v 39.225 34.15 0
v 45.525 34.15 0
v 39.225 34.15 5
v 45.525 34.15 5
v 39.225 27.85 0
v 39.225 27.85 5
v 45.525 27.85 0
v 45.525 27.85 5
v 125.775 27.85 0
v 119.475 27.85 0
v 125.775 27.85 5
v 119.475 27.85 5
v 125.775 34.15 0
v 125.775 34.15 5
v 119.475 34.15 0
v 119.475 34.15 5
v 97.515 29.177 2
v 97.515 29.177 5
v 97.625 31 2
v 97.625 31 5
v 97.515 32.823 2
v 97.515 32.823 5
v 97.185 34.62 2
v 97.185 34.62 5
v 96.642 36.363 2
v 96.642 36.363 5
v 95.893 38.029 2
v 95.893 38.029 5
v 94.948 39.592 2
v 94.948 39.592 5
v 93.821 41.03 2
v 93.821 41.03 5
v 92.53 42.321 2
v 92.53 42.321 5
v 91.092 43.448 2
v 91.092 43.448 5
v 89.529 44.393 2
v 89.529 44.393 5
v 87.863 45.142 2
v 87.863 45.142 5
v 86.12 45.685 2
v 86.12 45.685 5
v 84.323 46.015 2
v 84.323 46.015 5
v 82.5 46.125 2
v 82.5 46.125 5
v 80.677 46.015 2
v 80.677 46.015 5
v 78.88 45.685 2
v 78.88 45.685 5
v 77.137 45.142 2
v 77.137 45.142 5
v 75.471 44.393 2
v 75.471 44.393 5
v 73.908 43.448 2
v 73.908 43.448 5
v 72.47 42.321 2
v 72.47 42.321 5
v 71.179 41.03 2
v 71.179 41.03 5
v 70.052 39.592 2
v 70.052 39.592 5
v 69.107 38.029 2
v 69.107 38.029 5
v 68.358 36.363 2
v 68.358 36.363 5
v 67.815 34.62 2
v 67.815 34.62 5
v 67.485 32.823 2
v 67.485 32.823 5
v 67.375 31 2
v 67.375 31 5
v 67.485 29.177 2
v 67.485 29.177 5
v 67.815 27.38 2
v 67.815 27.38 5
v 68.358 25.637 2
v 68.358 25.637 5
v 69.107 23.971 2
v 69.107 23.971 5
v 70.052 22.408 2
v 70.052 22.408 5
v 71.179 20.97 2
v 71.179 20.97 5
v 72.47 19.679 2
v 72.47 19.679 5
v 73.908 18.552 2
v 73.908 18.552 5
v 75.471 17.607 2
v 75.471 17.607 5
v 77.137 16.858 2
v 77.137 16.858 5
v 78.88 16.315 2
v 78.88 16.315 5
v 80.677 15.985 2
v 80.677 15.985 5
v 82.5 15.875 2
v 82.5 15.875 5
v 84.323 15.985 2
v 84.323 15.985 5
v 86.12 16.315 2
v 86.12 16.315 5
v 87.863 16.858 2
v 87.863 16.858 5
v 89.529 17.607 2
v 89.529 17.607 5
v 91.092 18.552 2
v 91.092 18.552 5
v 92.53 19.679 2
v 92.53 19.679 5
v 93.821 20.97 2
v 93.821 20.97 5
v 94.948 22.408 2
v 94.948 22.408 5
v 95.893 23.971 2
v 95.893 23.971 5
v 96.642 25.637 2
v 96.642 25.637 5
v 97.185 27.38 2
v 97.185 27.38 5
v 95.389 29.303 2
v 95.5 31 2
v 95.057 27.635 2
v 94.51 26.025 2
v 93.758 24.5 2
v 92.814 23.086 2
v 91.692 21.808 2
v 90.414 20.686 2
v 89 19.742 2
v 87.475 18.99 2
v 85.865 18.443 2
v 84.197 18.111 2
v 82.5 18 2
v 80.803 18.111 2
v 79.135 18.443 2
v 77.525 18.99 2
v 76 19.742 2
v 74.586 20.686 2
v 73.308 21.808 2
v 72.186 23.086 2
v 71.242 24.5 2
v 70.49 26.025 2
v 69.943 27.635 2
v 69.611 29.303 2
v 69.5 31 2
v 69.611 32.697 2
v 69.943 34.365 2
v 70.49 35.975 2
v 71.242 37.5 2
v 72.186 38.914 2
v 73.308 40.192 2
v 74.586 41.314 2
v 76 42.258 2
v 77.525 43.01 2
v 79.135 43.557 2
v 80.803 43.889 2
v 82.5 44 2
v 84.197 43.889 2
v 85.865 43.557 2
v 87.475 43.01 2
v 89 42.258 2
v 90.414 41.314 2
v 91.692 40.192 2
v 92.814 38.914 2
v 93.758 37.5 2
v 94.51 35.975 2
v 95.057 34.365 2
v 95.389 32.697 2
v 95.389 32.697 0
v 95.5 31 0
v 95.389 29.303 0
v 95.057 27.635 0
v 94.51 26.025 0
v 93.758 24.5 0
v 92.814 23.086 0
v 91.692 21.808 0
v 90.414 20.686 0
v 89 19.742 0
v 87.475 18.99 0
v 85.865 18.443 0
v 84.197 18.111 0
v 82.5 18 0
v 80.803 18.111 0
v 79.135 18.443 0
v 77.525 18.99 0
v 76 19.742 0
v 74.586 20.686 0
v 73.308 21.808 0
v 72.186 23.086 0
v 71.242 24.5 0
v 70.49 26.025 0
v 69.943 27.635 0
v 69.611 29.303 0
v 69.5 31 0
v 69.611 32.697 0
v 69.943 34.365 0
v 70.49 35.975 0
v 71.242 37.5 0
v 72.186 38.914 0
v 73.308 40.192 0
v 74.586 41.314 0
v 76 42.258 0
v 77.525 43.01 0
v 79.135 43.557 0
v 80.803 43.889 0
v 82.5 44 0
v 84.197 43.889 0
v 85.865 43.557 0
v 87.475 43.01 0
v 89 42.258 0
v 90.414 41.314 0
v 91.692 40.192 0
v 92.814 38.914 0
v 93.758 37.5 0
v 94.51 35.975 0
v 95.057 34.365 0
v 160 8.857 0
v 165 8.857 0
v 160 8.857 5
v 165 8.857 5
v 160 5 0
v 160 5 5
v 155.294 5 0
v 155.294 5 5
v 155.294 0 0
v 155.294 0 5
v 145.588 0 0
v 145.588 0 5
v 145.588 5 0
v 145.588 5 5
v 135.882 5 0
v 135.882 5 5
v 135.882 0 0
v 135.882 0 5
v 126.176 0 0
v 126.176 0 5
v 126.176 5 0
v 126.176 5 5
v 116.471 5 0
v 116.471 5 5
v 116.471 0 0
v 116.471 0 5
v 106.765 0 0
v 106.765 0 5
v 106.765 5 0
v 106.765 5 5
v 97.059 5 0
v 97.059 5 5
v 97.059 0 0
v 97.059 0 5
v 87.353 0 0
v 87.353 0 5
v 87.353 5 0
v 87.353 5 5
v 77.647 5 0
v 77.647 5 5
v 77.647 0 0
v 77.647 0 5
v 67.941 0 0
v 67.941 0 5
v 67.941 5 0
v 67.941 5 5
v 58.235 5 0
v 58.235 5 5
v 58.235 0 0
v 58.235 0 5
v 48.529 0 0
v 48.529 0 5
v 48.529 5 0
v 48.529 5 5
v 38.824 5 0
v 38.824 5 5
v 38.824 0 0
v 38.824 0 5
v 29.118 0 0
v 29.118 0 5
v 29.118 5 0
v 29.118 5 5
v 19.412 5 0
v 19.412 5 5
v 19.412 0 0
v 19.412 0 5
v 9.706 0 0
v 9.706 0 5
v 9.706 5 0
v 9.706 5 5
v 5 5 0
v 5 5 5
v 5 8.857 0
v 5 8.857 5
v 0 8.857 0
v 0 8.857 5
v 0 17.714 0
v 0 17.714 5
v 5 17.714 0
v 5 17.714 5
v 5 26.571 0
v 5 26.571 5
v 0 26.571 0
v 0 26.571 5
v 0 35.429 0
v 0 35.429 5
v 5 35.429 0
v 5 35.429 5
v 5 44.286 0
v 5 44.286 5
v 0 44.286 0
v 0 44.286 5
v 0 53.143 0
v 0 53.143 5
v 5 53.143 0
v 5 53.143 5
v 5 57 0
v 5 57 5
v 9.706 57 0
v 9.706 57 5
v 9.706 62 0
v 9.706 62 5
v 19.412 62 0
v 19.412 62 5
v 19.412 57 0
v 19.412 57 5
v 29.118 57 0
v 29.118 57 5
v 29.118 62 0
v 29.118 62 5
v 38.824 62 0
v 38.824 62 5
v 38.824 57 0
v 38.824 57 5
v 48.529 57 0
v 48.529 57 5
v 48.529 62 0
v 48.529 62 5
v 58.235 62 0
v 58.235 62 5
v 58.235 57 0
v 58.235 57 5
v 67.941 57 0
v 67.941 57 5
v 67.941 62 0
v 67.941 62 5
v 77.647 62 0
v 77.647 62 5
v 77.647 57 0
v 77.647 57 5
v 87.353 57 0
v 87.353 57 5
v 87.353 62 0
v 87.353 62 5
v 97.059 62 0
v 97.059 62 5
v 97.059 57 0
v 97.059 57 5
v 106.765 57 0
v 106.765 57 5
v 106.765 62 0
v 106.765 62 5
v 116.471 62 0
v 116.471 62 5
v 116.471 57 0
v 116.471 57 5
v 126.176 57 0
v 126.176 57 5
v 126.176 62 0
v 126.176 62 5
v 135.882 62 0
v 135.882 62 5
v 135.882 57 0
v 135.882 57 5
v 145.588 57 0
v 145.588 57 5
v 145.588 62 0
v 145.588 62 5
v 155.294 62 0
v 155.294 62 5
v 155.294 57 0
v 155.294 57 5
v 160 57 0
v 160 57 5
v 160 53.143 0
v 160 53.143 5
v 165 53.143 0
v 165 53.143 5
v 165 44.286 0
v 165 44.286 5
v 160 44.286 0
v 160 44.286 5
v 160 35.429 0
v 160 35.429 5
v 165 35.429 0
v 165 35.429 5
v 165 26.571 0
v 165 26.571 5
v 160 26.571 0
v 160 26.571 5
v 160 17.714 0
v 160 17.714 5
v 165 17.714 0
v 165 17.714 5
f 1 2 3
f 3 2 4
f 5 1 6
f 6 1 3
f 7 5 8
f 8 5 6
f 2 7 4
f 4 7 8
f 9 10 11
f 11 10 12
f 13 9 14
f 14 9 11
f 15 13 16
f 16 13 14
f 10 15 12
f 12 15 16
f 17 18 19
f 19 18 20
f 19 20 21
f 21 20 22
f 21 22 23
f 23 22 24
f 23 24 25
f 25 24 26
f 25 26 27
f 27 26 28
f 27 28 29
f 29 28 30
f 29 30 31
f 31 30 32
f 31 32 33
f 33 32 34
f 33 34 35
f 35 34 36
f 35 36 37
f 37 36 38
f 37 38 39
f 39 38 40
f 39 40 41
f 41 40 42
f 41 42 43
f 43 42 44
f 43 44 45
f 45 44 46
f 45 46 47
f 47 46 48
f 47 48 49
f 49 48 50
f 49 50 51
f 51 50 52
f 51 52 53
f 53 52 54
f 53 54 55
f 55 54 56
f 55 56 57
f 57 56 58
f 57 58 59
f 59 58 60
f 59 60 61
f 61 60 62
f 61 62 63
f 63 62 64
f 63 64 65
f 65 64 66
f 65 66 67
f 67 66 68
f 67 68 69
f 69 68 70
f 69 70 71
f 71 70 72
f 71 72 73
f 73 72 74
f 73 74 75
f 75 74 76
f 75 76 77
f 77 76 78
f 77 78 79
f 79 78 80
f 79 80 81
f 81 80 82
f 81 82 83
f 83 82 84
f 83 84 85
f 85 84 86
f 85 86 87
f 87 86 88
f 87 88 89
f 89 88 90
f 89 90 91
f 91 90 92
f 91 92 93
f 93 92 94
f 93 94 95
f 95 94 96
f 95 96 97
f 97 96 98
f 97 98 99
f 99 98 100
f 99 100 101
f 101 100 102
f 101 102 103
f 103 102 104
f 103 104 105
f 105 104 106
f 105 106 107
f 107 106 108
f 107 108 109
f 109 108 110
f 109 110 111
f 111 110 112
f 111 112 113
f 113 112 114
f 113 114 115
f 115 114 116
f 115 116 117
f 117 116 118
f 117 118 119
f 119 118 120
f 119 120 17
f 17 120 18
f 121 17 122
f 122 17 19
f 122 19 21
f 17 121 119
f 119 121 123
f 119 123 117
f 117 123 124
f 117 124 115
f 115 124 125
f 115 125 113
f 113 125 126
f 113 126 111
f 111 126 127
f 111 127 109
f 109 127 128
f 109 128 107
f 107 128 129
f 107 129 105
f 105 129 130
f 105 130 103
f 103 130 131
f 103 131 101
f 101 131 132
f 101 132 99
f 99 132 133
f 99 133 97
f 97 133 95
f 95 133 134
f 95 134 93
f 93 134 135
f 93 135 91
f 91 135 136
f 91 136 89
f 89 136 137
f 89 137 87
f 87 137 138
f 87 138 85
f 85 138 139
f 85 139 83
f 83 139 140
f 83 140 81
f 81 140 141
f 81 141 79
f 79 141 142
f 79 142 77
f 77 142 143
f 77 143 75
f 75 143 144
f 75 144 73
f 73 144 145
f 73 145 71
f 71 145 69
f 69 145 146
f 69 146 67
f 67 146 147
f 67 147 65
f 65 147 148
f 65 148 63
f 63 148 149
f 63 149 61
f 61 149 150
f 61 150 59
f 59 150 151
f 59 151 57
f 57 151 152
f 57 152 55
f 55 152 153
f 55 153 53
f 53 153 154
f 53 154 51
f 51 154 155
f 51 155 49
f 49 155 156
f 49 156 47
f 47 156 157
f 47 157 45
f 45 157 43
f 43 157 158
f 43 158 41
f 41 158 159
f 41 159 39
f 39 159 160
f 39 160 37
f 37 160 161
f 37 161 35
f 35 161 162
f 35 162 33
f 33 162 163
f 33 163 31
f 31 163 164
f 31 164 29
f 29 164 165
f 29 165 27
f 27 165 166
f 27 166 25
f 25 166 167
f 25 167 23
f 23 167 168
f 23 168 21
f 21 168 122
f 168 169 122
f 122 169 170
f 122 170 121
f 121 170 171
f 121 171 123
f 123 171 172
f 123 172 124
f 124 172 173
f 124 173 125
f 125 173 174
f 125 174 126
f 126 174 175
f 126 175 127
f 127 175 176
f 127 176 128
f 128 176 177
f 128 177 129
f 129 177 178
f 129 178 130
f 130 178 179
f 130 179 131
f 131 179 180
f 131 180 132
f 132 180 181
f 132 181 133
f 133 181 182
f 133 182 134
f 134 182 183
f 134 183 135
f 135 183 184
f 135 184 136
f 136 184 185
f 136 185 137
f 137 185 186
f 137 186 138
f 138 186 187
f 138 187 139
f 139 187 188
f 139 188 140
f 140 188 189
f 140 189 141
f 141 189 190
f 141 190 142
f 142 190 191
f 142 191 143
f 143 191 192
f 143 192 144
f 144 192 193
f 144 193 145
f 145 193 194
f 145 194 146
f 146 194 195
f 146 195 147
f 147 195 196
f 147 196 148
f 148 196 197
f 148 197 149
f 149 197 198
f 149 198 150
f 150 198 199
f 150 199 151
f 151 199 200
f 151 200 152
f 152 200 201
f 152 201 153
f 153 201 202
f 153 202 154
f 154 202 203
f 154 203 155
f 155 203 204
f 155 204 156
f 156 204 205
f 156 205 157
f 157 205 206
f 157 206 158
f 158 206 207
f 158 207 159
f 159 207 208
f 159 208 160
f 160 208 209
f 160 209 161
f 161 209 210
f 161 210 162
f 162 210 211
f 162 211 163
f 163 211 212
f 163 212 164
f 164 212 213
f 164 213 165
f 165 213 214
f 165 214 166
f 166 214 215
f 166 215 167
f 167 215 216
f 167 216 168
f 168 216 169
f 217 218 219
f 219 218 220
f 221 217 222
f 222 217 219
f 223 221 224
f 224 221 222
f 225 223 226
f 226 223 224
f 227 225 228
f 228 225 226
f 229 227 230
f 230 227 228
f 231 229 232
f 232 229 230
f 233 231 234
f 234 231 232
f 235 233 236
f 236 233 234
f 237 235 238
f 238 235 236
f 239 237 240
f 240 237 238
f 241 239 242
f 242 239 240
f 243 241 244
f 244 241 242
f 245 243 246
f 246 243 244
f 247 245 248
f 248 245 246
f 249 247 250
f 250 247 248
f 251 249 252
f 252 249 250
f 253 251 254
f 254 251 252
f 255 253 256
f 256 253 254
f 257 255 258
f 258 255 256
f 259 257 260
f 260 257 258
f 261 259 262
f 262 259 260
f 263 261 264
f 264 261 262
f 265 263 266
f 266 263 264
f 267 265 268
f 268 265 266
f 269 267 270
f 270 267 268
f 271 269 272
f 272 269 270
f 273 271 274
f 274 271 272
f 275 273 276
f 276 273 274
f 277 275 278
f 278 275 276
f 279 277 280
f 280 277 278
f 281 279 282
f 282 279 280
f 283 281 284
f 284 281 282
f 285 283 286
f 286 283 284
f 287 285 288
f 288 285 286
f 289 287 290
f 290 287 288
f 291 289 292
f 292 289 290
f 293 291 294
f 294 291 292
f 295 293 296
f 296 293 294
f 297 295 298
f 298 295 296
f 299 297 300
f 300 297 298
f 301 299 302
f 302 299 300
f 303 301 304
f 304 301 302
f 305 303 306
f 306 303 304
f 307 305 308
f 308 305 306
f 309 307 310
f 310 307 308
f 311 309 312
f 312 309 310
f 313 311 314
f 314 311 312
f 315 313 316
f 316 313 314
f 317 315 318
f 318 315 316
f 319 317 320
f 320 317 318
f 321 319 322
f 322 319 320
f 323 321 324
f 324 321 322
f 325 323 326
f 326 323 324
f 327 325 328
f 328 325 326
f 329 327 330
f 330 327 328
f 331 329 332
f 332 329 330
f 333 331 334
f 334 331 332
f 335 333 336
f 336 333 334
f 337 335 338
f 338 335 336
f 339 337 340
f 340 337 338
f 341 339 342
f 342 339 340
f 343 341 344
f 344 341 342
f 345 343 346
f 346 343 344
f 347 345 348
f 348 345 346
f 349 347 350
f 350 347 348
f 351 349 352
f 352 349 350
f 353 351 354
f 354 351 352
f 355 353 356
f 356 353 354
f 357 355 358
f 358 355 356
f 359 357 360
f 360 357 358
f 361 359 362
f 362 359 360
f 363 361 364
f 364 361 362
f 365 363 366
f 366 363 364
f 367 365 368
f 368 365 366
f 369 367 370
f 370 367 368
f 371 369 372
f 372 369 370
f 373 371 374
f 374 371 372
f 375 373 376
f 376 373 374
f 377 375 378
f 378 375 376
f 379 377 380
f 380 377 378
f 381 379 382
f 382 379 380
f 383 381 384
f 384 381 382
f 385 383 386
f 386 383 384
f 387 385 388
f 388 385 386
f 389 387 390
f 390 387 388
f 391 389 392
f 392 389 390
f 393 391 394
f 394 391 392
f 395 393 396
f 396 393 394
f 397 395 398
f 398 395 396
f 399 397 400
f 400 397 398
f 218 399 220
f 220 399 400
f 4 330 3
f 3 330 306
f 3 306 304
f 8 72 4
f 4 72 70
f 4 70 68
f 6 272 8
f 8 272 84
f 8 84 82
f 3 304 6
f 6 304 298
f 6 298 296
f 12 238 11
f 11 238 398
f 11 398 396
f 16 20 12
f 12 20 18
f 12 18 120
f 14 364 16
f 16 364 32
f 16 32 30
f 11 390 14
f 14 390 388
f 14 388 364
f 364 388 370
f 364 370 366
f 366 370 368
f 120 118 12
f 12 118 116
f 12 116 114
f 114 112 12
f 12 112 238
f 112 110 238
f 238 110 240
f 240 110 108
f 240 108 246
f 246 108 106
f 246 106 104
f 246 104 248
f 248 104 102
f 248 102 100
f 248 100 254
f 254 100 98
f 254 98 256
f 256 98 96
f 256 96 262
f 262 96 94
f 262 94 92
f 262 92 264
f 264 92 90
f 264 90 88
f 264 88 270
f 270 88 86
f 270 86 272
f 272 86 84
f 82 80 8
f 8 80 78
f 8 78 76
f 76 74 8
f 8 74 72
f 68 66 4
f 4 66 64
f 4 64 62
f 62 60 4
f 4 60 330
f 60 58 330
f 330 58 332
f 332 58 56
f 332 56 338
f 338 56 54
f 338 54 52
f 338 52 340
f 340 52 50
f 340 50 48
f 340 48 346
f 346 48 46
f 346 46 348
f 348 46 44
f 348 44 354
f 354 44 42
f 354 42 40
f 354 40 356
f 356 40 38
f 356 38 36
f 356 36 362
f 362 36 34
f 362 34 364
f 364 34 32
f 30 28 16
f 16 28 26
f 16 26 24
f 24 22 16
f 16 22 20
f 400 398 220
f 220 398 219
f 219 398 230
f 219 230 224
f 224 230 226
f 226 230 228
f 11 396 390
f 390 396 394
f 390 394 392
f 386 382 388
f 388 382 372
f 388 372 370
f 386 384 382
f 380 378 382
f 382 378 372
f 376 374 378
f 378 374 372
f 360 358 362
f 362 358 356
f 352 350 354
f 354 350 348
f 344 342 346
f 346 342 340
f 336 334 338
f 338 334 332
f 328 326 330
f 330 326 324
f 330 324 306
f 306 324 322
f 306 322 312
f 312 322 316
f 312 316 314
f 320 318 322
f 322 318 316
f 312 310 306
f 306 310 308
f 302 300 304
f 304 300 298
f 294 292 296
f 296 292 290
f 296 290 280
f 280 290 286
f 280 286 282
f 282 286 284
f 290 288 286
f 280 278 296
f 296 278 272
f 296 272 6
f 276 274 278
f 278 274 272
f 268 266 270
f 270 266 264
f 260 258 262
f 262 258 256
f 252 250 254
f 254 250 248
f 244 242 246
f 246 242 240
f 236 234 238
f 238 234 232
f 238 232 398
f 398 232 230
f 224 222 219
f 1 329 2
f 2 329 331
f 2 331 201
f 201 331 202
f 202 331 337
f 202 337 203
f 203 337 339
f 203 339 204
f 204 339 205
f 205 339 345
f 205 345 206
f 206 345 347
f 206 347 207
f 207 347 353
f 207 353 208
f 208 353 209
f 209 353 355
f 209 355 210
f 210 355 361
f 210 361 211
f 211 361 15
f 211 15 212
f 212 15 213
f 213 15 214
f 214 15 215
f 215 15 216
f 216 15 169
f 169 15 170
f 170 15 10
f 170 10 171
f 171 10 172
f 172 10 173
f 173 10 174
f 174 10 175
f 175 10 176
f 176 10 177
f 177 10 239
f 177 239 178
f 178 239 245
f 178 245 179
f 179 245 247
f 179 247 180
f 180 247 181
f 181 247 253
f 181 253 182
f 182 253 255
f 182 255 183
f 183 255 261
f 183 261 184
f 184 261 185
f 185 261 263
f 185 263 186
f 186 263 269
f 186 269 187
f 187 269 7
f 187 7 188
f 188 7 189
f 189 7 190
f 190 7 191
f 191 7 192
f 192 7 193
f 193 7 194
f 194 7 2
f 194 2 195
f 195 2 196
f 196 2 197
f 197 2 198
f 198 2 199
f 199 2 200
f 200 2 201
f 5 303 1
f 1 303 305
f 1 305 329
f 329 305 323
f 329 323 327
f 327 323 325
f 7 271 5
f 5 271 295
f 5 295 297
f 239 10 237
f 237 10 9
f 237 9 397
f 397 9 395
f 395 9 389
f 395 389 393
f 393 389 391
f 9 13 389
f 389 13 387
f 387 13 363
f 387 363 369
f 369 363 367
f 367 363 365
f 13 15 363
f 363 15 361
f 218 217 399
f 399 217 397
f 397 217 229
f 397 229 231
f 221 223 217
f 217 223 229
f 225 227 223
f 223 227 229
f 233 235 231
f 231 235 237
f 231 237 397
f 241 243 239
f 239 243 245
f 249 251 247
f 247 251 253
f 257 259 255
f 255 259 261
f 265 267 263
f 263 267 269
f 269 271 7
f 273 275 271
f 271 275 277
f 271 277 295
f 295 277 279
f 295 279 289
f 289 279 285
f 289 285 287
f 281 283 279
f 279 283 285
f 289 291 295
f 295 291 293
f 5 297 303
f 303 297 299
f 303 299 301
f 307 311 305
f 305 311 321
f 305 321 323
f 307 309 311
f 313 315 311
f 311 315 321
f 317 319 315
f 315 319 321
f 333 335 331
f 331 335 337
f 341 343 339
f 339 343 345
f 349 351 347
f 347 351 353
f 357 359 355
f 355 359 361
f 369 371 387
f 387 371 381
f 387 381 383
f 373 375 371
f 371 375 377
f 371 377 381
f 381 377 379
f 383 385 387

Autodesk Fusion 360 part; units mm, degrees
sketch "Sketch1" plane through (0, 0, 0) normal (0, 0, 1) x (1, 0, 0)
  line L0 (0, 0) -> (165, 0)
  line L1 (165, 0) -> (165, 62)
  line L2 (165, 62) -> (0, 62)
  line L3 (0, 62) -> (0, 0)
  line L4 (0, 62) -> (9.7059, 62)
  line L5 (9.7059, 62) -> (9.7059, 57)
  line L6 (9.7059, 57) -> (0, 57)
  line L7 (0, 57) -> (0, 62)
  line L8 (9.7059, 62) -> (19.4118, 62)
  line L9 (19.4118, 62) -> (19.4118, 57)
  line L10 (19.4118, 57) -> (9.7059, 57)
  line L11 (9.7059, 57) -> (9.7059, 62)
  line L12 (19.4118, 62) -> (29.1176, 62)
  line L13 (29.1176, 62) -> (29.1176, 57)
  line L14 (29.1176, 57) -> (19.4118, 57)
  line L15 (19.4118, 57) -> (19.4118, 62)
  line L16 (29.1176, 62) -> (38.8235, 62)
  line L17 (38.8235, 62) -> (38.8235, 57)
  line L18 (38.8235, 57) -> (29.1176, 57)
  line L19 (29.1176, 57) -> (29.1176, 62)
  line L20 (38.8235, 62) -> (48.5294, 62)
  line L21 (48.5294, 62) -> (48.5294, 57)
  line L22 (48.5294, 57) -> (38.8235, 57)
  line L23 (38.8235, 57) -> (38.8235, 62)
  line L24 (48.5294, 62) -> (58.2353, 62)
  line L25 (58.2353, 62) -> (58.2353, 57)
  line L26 (58.2353, 57) -> (48.5294, 57)
  line L27 (48.5294, 57) -> (48.5294, 62)
  line L28 (58.2353, 62) -> (67.9412, 62)
  line L29 (67.9412, 62) -> (67.9412, 57)
  line L30 (67.9412, 57) -> (58.2353, 57)
  line L31 (58.2353, 57) -> (58.2353, 62)
  line L32 (67.9412, 62) -> (77.6471, 62)
  line L33 (77.6471, 62) -> (77.6471, 57)
  line L34 (77.6471, 57) -> (67.9412, 57)
  line L35 (67.9412, 57) -> (67.9412, 62)
  line L36 (77.6471, 62) -> (87.3529, 62)
  line L37 (87.3529, 62) -> (87.3529, 57)
  line L38 (87.3529, 57) -> (77.6471, 57)
  line L39 (77.6471, 57) -> (77.6471, 62)
  line L40 (87.3529, 62) -> (97.0588, 62)
  line L41 (97.0588, 62) -> (97.0588, 57)
  line L42 (97.0588, 57) -> (87.3529, 57)
  line L43 (87.3529, 57) -> (87.3529, 62)
  line L44 (97.0588, 62) -> (106.7647, 62)
  line L45 (106.7647, 62) -> (106.7647, 57)
  line L46 (106.7647, 57) -> (97.0588, 57)
  line L47 (97.0588, 57) -> (97.0588, 62)
  line L48 (106.7647, 62) -> (116.4706, 62)
  line L49 (116.4706, 62) -> (116.4706, 57)
  line L50 (116.4706, 57) -> (106.7647, 57)
  line L51 (106.7647, 57) -> (106.7647, 62)
  line L52 (116.4706, 62) -> (126.1765, 62)
  line L53 (126.1765, 62) -> (126.1765, 57)
  line L54 (126.1765, 57) -> (116.4706, 57)
  line L55 (116.4706, 57) -> (116.4706, 62)
  line L56 (126.1765, 62) -> (135.8824, 62)
  line L57 (135.8824, 62) -> (135.8824, 57)
  line L58 (135.8824, 57) -> (126.1765, 57)
  line L59 (126.1765, 57) -> (126.1765, 62)
  line L60 (135.8824, 62) -> (145.5882, 62)
  line L61 (145.5882, 62) -> (145.5882, 57)
  line L62 (145.5882, 57) -> (135.8824, 57)
  line L63 (135.8824, 57) -> (135.8824, 62)
  line L64 (145.5882, 62) -> (155.2941, 62)
  line L65 (155.2941, 62) -> (155.2941, 57)
  line L66 (155.2941, 57) -> (145.5882, 57)
  line L67 (145.5882, 57) -> (145.5882, 62)
  line L68 (155.2941, 62) -> (165, 62)
  line L69 (165, 62) -> (165, 57)
  line L70 (165, 57) -> (155.2941, 57)
  line L71 (155.2941, 57) -> (155.2941, 62)
  line L72 (0, 62) -> (5, 62)
  line L73 (5, 62) -> (5, 53.1429)
  line L74 (5, 53.1429) -> (0, 53.1429)
  line L75 (0, 53.1429) -> (0, 62)
  line L76 (5, 44.2857) -> (0, 44.2857)
  line L77 (5, 53.1429) -> (5, 44.2857)
  line L78 (0, 44.2857) -> (0, 53.1429)
  line L79 (0, 53.1429) -> (5, 53.1429)
  line L80 (5, 35.4286) -> (0, 35.4286)
  line L81 (5, 44.2857) -> (5, 35.4286)
  line L82 (0, 35.4286) -> (0, 44.2857)
  line L83 (0, 44.2857) -> (5, 44.2857)
  line L84 (5, 26.5714) -> (0, 26.5714)
  line L85 (5, 35.4286) -> (5, 26.5714)
  line L86 (0, 26.5714) -> (0, 35.4286)
  line L87 (0, 35.4286) -> (5, 35.4286)
  line L88 (5, 17.7143) -> (0, 17.7143)
  line L89 (5, 26.5714) -> (5, 17.7143)
  line L90 (0, 17.7143) -> (0, 26.5714)
  line L91 (0, 26.5714) -> (5, 26.5714)
  line L92 (5, 8.8571) -> (0, 8.8571)
  line L93 (5, 17.7143) -> (5, 8.8571)
  line L94 (0, 8.8571) -> (0, 17.7143)
  line L95 (0, 17.7143) -> (5, 17.7143)
  line L96 (5, 0) -> (0, 0)
  line L97 (5, 8.8571) -> (5, 0)
  line L98 (0, 0) -> (0, 8.8571)
  line L99 (0, 8.8571) -> (5, 8.8571)
  line L100 (0, 0) -> (9.7059, 0)
  line L101 (9.7059, 0) -> (9.7059, 5)
  line L102 (9.7059, 5) -> (0, 5)
  line L103 (0, 5) -> (0, 0)
  line L104 (9.7059, 0) -> (19.4118, 0)
  line L105 (19.4118, 0) -> (19.4118, 5)
  line L106 (9.7059, 5) -> (9.7059, 0)
  line L107 (19.4118, 5) -> (9.7059, 5)
  line L108 (19.4118, 0) -> (29.1176, 0)
  line L109 (29.1176, 0) -> (29.1176, 5)
  line L110 (19.4118, 5) -> (19.4118, 0)
  line L111 (29.1176, 5) -> (19.4118, 5)
  line L112 (29.1176, 0) -> (38.8235, 0)
  line L113 (38.8235, 0) -> (38.8235, 5)
  line L114 (29.1176, 5) -> (29.1176, 0)
  line L115 (38.8235, 5) -> (29.1176, 5)
  line L116 (38.8235, 0) -> (48.5294, 0)
  line L117 (48.5294, 0) -> (48.5294, 5)
  line L118 (38.8235, 5) -> (38.8235, 0)
  line L119 (48.5294, 5) -> (38.8235, 5)
  line L120 (48.5294, 0) -> (58.2353, 0)
  line L121 (58.2353, 0) -> (58.2353, 5)
  line L122 (48.5294, 5) -> (48.5294, 0)
  line L123 (58.2353, 5) -> (48.5294, 5)
  line L124 (58.2353, 0) -> (67.9412, 0)
  line L125 (67.9412, 0) -> (67.9412, 5)
  line L126 (58.2353, 5) -> (58.2353, 0)
  line L127 (67.9412, 5) -> (58.2353, 5)
  line L128 (67.9412, 0) -> (77.6471, 0)
  line L129 (77.6471, 0) -> (77.6471, 5)
  line L130 (67.9412, 5) -> (67.9412, 0)
  line L131 (77.6471, 5) -> (67.9412, 5)
  line L132 (77.6471, 0) -> (87.3529, 0)
  line L133 (87.3529, 0) -> (87.3529, 5)
  line L134 (77.6471, 5) -> (77.6471, 0)
  line L135 (87.3529, 5) -> (77.6471, 5)
  line L136 (87.3529, 0) -> (97.0588, 0)
  line L137 (97.0588, 0) -> (97.0588, 5)
  line L138 (87.3529, 5) -> (87.3529, 0)
  line L139 (97.0588, 5) -> (87.3529, 5)
  line L140 (97.0588, 0) -> (106.7647, 0)
  line L141 (106.7647, 0) -> (106.7647, 5)
  line L142 (97.0588, 5) -> (97.0588, 0)
  line L143 (106.7647, 5) -> (97.0588, 5)
  line L144 (106.7647, 0) -> (116.4706, 0)
  line L145 (116.4706, 0) -> (116.4706, 5)
  line L146 (106.7647, 5) -> (106.7647, 0)
  line L147 (116.4706, 5) -> (106.7647, 5)
  line L148 (116.4706, 0) -> (126.1765, 0)
  line L149 (126.1765, 0) -> (126.1765, 5)
  line L150 (116.4706, 5) -> (116.4706, 0)
  line L151 (126.1765, 5) -> (116.4706, 5)
  line L152 (126.1765, 0) -> (135.8824, 0)
  line L153 (135.8824, 0) -> (135.8824, 5)
  line L154 (126.1765, 5) -> (126.1765, 0)
  line L155 (135.8824, 5) -> (126.1765, 5)
  line L156 (135.8824, 0) -> (145.5882, 0)
  line L157 (145.5882, 0) -> (145.5882, 5)
  line L158 (135.8824, 5) -> (135.8824, 0)
  line L159 (145.5882, 5) -> (135.8824, 5)
  line L160 (145.5882, 0) -> (155.2941, 0)
  line L161 (155.2941, 0) -> (155.2941, 5)
  line L162 (145.5882, 5) -> (145.5882, 0)
  line L163 (155.2941, 5) -> (145.5882, 5)
  line L164 (155.2941, 0) -> (165, 0)
  line L165 (165, 0) -> (165, 5)
  line L166 (155.2941, 5) -> (155.2941, 0)
  line L167 (165, 5) -> (155.2941, 5)
  line L168 (165, 62) -> (160, 62)
  line L169 (160, 62) -> (160, 53.1429)
  line L170 (160, 53.1429) -> (165, 53.1429)
  line L171 (165, 53.1429) -> (165, 62)
  line L172 (160, 53.1429) -> (160, 44.2857)
  line L173 (160, 44.2857) -> (165, 44.2857)
  line L174 (160, 44.2857) -> (160, 35.4286)
  line L175 (160, 35.4286) -> (165, 35.4286)
  line L176 (160, 35.4286) -> (160, 26.5714)
  line L177 (160, 26.5714) -> (165, 26.5714)
  line L178 (160, 26.5714) -> (160, 17.7143)
  line L179 (160, 17.7143) -> (165, 17.7143)
  line L180 (160, 17.7143) -> (160, 8.8571)
  line L181 (160, 8.8571) -> (165, 8.8571)
  line L182 (160, 8.8571) -> (160, 0)
  line L183 (160, 0) -> (165, 0)
  dimension "d4" = 165
  dimension "d5" = 62
  dimension "d6" = 9.7059
  dimension "d7" = 5
  dimension "d10" = 155.2941
  dimension "d11" = 0
  dimension "d12" = 5
  dimension "d13" = 8.8571
  dimension "d16" = 0
  dimension "d17" = -53.1429
  dimension "d18" = 9.7059
  dimension "d19" = 5
  dimension "d22" = 155.2941
  dimension "d23" = 0
  dimension "d24" = 5
  dimension "d25" = 8.8571
  dimension "d28" = 0
  dimension "d29" = -53.1429
extrude "Extrude1" add sketch "Sketch1" along normal blind 5 contours L0 L101 L104 L105 L106 L107 L110 | L6 L10 L14 L18 L22 L26 L30 L34 L38 L42 L46 L50 L54 L58 L62 L66 L70 L73 L77 L81 L85 L89 L93 L97 L102 L107 L111 L115 L119 L123 L127 L131 L135 L139 L143 L147 L151 L155 L159 L163 L167 L169 L172 L174 L176 L178 L180 L182 | L3 L88 L92 L93 L94 L95 L99 | L0 L109 L112 L113 L114 L115 L118 | L3 L80 L84 L85 L86 L87 L91 | L0 L117 L120 L121 L122 L123 L126 | L3 L74 L76 L77 L78 L79 L83 | L0 L125 L128 L129 L130 L131 L134 | L0 L133 L136 L137 L138 L139 L142 | L2 L5 L8 L9 L10 L11 L15 | L0 L141 L144 L145 L146 L147 L150 | L2 L13 L16 L17 L18 L19 L23 | L0 L149 L152 L153 L154 L155 L158 | L2 L21 L24 L25 L26 L27 L31 | L0 L157 L160 L161 L162 L163 L166 | L2 L29 L32 L33 L34 L35 L39 | L2 L37 L40 L41 L42 L43 L47 | L1 L179 L180 L181 | L2 L45 L48 L49 L50 L51 L55 | L1 L175 L176 L177 | L2 L53 L56 L57 L58 L59 L63 | L1 L170 L172 L173 | L2 L61 L64 L65 L66 L67 L71
sketch "Sketch2" plane through (0, 0, 5) normal (0, 0, 1) x (-1, 0, 0)
  line L0 (-165, -8.8571) -> (-165, -17.7143)
  line L1 (-165, -17.7143) -> (-160, -17.7143)
  line L2 (-160, -17.7143) -> (-160, -26.5714)
  line L3 (-160, -26.5714) -> (-165, -26.5714)
  line L4 (-165, -26.5714) -> (-165, -35.4286)
  line L5 (-165, -35.4286) -> (-160, -35.4286)
  line L6 (-160, -35.4286) -> (-160, -44.2857)
  line L7 (-160, -44.2857) -> (-165, -44.2857)
  line L8 (-165, -44.2857) -> (-165, -53.1429)
  line L9 (-165, -53.1429) -> (-160, -53.1429)
  line L10 (-160, -53.1429) -> (-160, -57)
  line L11 (-160, -57) -> (-155.2941, -57)
  line L12 (-155.2941, -57) -> (-155.2941, -62)
  line L13 (-155.2941, -62) -> (-145.5882, -62)
  line L14 (-145.5882, -62) -> (-145.5882, -57)
  line L15 (-145.5882, -57) -> (-135.8824, -57)
  line L16 (-135.8824, -57) -> (-135.8824, -62)
  line L17 (-135.8824, -62) -> (-126.1765, -62)
  line L18 (-126.1765, -62) -> (-126.1765, -57)
  line L19 (-126.1765, -57) -> (-116.4706, -57)
  line L20 (-116.4706, -57) -> (-116.4706, -62)
  line L21 (-116.4706, -62) -> (-106.7647, -62)
  line L22 (-106.7647, -62) -> (-106.7647, -57)
  line L23 (-106.7647, -57) -> (-97.0588, -57)
  line L24 (-97.0588, -57) -> (-97.0588, -62)
  line L25 (-97.0588, -62) -> (-87.3529, -62)
  line L26 (-87.3529, -62) -> (-87.3529, -57)
  line L27 (-87.3529, -57) -> (-77.6471, -57)
  line L28 (-77.6471, -57) -> (-77.6471, -62)
  line L29 (-77.6471, -62) -> (-67.9412, -62)
  line L30 (-67.9412, -62) -> (-67.9412, -57)
  line L31 (-67.9412, -57) -> (-58.2353, -57)
  line L32 (-58.2353, -57) -> (-58.2353, -62)
  line L33 (-58.2353, -62) -> (-48.5294, -62)
  line L34 (-48.5294, -62) -> (-48.5294, -57)
  line L35 (-48.5294, -57) -> (-38.8235, -57)
  line L36 (-38.8235, -57) -> (-38.8235, -62)
  line L37 (-38.8235, -62) -> (-29.1176, -62)
  line L38 (-29.1176, -62) -> (-29.1176, -57)
  line L39 (-29.1176, -57) -> (-19.4118, -57)
  line L40 (-19.4118, -57) -> (-19.4118, -62)
  line L41 (-19.4118, -62) -> (-9.7059, -62)
  line L42 (-9.7059, -62) -> (-9.7059, -57)
  line L43 (-9.7059, -57) -> (-5, -57)
  line L44 (-5, -57) -> (-5, -53.1429)
  line L45 (-5, -53.1429) -> (0, -53.1429)
  line L46 (0, -53.1429) -> (0, -44.2857)
  line L47 (0, -44.2857) -> (-5, -44.2857)
  line L48 (-5, -44.2857) -> (-5, -35.4286)
  line L49 (-5, -35.4286) -> (0, -35.4286)
  line L50 (0, -35.4286) -> (0, -26.5714)
  line L51 (0, -26.5714) -> (-5, -26.5714)
  line L52 (-5, -26.5714) -> (-5, -17.7143)
  line L53 (-5, -17.7143) -> (0, -17.7143)
  line L54 (0, -17.7143) -> (0, -8.8571)
  line L55 (0, -8.8571) -> (-5, -8.8571)
  line L56 (-5, -8.8571) -> (-5, -5)
  line L57 (-5, -5) -> (-9.7059, -5)
  line L58 (-9.7059, -5) -> (-9.7059, 0)
  line L59 (-9.7059, 0) -> (-19.4118, 0)
  line L60 (-19.4118, 0) -> (-19.4118, -5)
  line L61 (-19.4118, -5) -> (-29.1176, -5)
  line L62 (-29.1176, -5) -> (-29.1176, 0)
  line L63 (-29.1176, 0) -> (-38.8235, 0)
  line L64 (-38.8235, 0) -> (-38.8235, -5)
  line L65 (-38.8235, -5) -> (-48.5294, -5)
  line L66 (-48.5294, -5) -> (-48.5294, 0)
  line L67 (-48.5294, 0) -> (-58.2353, 0)
  line L68 (-58.2353, 0) -> (-58.2353, -5)
  line L69 (-58.2353, -5) -> (-67.9412, -5)
  line L70 (-67.9412, -5) -> (-67.9412, 0)
  line L71 (-67.9412, 0) -> (-77.6471, 0)
  line L72 (-77.6471, 0) -> (-77.6471, -5)
  line L73 (-77.6471, -5) -> (-87.3529, -5)
  line L74 (-87.3529, -5) -> (-87.3529, 0)
  line L75 (-87.3529, 0) -> (-97.0588, 0)
  line L76 (-97.0588, 0) -> (-97.0588, -5)
  line L77 (-97.0588, -5) -> (-106.7647, -5)
  line L78 (-106.7647, -5) -> (-106.7647, 0)
  line L79 (-106.7647, 0) -> (-116.4706, 0)
  line L80 (-116.4706, 0) -> (-116.4706, -5)
  line L81 (-116.4706, -5) -> (-126.1765, -5)
  line L82 (-126.1765, -5) -> (-126.1765, 0)
  line L83 (-126.1765, 0) -> (-135.8824, 0)
  line L84 (-135.8824, 0) -> (-135.8824, -5)
  line L85 (-135.8824, -5) -> (-145.5882, -5)
  line L86 (-145.5882, -5) -> (-145.5882, 0)
  line L87 (-145.5882, 0) -> (-155.2941, 0)
  line L88 (-155.2941, 0) -> (-155.2941, -5)
  line L89 (-155.2941, -5) -> (-160, -5)
  line L90 (-160, -5) -> (-160, -8.8571)
  line L91 (-160, -8.8571) -> (-165, -8.8571)
  line L92 (0, -31) -> (-82.5, -31) construction
  circle A0 centre (-82.5, -31) radius 13
  dimension "d36" = 82.5
  dimension "d38" = 26
extrude "Extrude2" cut sketch "Sketch2" against normal up to surface (5 mm away) contours A0
sketch "Sketch3" plane through (0, 0, 5) normal (0, 0, 1) x (-1, 0, 0)
  circle A0 centre (-82.5, -31) radius 13
  line L0 (-165, -8.8571) -> (-165, -17.7143)
  line L1 (-165, -17.7143) -> (-160, -17.7143)
  line L2 (-160, -17.7143) -> (-160, -26.5714)
  line L3 (-160, -26.5714) -> (-165, -26.5714)
  line L4 (-165, -26.5714) -> (-165, -35.4286)
  line L5 (-165, -35.4286) -> (-160, -35.4286)
  line L6 (-160, -35.4286) -> (-160, -44.2857)
  line L7 (-160, -44.2857) -> (-165, -44.2857)
  line L8 (-165, -44.2857) -> (-165, -53.1429)
  line L9 (-165, -53.1429) -> (-160, -53.1429)
  line L10 (-160, -53.1429) -> (-160, -57)
  line L11 (-160, -57) -> (-155.2941, -57)
  line L12 (-155.2941, -57) -> (-155.2941, -62)
  line L13 (-155.2941, -62) -> (-145.5882, -62)
  line L14 (-145.5882, -62) -> (-145.5882, -57)
  line L15 (-145.5882, -57) -> (-135.8824, -57)
  line L16 (-135.8824, -57) -> (-135.8824, -62)
  line L17 (-135.8824, -62) -> (-126.1765, -62)
  line L18 (-126.1765, -62) -> (-126.1765, -57)
  line L19 (-126.1765, -57) -> (-116.4706, -57)
  line L20 (-116.4706, -57) -> (-116.4706, -62)
  line L21 (-116.4706, -62) -> (-106.7647, -62)
  line L22 (-106.7647, -62) -> (-106.7647, -57)
  line L23 (-106.7647, -57) -> (-97.0588, -57)
  line L24 (-97.0588, -57) -> (-97.0588, -62)
  line L25 (-97.0588, -62) -> (-87.3529, -62)
  line L26 (-87.3529, -62) -> (-87.3529, -57)
  line L27 (-87.3529, -57) -> (-77.6471, -57)
  line L28 (-77.6471, -57) -> (-77.6471, -62)
  line L29 (-77.6471, -62) -> (-67.9412, -62)
  line L30 (-67.9412, -62) -> (-67.9412, -57)
  line L31 (-67.9412, -57) -> (-58.2353, -57)
  line L32 (-58.2353, -57) -> (-58.2353, -62)
  line L33 (-58.2353, -62) -> (-48.5294, -62)
  line L34 (-48.5294, -62) -> (-48.5294, -57)
  line L35 (-48.5294, -57) -> (-38.8235, -57)
  line L36 (-38.8235, -57) -> (-38.8235, -62)
  line L37 (-38.8235, -62) -> (-29.1176, -62)
  line L38 (-29.1176, -62) -> (-29.1176, -57)
  line L39 (-29.1176, -57) -> (-19.4118, -57)
  line L40 (-19.4118, -57) -> (-19.4118, -62)
  line L41 (-19.4118, -62) -> (-9.7059, -62)
  line L42 (-9.7059, -62) -> (-9.7059, -57)
  line L43 (-9.7059, -57) -> (-5, -57)
  line L44 (-5, -57) -> (-5, -53.1429)
  line L45 (-5, -53.1429) -> (0, -53.1429)
  line L46 (0, -53.1429) -> (0, -44.2857)
  line L47 (0, -44.2857) -> (-5, -44.2857)
  line L48 (-5, -44.2857) -> (-5, -35.4286)
  line L49 (-5, -35.4286) -> (0, -35.4286)
  line L50 (0, -35.4286) -> (0, -26.5714)
  line L51 (0, -26.5714) -> (-5, -26.5714)
  line L52 (-5, -26.5714) -> (-5, -17.7143)
  line L53 (-5, -17.7143) -> (0, -17.7143)
  line L54 (0, -17.7143) -> (0, -8.8571)
  line L55 (0, -8.8571) -> (-5, -8.8571)
  line L56 (-5, -8.8571) -> (-5, -5)
  line L57 (-5, -5) -> (-9.7059, -5)
  line L58 (-9.7059, -5) -> (-9.7059, 0)
  line L59 (-9.7059, 0) -> (-19.4118, 0)
  line L60 (-19.4118, 0) -> (-19.4118, -5)
  line L61 (-19.4118, -5) -> (-29.1176, -5)
  line L62 (-29.1176, -5) -> (-29.1176, 0)
  line L63 (-29.1176, 0) -> (-38.8235, 0)
  line L64 (-38.8235, 0) -> (-38.8235, -5)
  line L65 (-38.8235, -5) -> (-48.5294, -5)
  line L66 (-48.5294, -5) -> (-48.5294, 0)
  line L67 (-48.5294, 0) -> (-58.2353, 0)
  line L68 (-58.2353, 0) -> (-58.2353, -5)
  line L69 (-58.2353, -5) -> (-67.9412, -5)
  line L70 (-67.9412, -5) -> (-67.9412, 0)
  line L71 (-67.9412, 0) -> (-77.6471, 0)
  line L72 (-77.6471, 0) -> (-77.6471, -5)
  line L73 (-77.6471, -5) -> (-87.3529, -5)
  line L74 (-87.3529, -5) -> (-87.3529, 0)
  line L75 (-87.3529, 0) -> (-97.0588, 0)
  line L76 (-97.0588, 0) -> (-97.0588, -5)
  line L77 (-97.0588, -5) -> (-106.7647, -5)
  line L78 (-106.7647, -5) -> (-106.7647, 0)
  line L79 (-106.7647, 0) -> (-116.4706, 0)
  line L80 (-116.4706, 0) -> (-116.4706, -5)
  line L81 (-116.4706, -5) -> (-126.1765, -5)
  line L82 (-126.1765, -5) -> (-126.1765, 0)
  line L83 (-126.1765, 0) -> (-135.8824, 0)
  line L84 (-135.8824, 0) -> (-135.8824, -5)
  line L85 (-135.8824, -5) -> (-145.5882, -5)
  line L86 (-145.5882, -5) -> (-145.5882, 0)
  line L87 (-145.5882, 0) -> (-155.2941, 0)
  line L88 (-155.2941, 0) -> (-155.2941, -5)
  line L89 (-155.2941, -5) -> (-160, -5)
  line L90 (-160, -5) -> (-160, -8.8571)
  line L91 (-160, -8.8571) -> (-165, -8.8571)
  line L92 (0, -31) -> (-82.5, -31) construction
  circle A1 centre (-82.5, -31) radius 15.125
  dimension "d41" = 82.5
  dimension "d42" = 30.25
extrude "Extrude3" cut sketch "Sketch3" against normal blind 3 contours A1
sketch "Sketch4" plane through (0, 0, 5) normal (0, 0, 1) x (-1, 0, 0)
  circle A0 centre (-82.5, -31) radius 15.125
  line L0 (-165, -8.8571) -> (-165, -17.7143)
  line L1 (-165, -17.7143) -> (-160, -17.7143)
  line L2 (-160, -17.7143) -> (-160, -26.5714)
  line L3 (-160, -26.5714) -> (-165, -26.5714)
  line L4 (-165, -26.5714) -> (-165, -35.4286)
  line L5 (-165, -35.4286) -> (-160, -35.4286)
  line L6 (-160, -35.4286) -> (-160, -44.2857)
  line L7 (-160, -44.2857) -> (-165, -44.2857)
  line L8 (-165, -44.2857) -> (-165, -53.1429)
  line L9 (-165, -53.1429) -> (-160, -53.1429)
  line L10 (-160, -53.1429) -> (-160, -57)
  line L11 (-160, -57) -> (-155.2941, -57)
  line L12 (-155.2941, -57) -> (-155.2941, -62)
  line L13 (-155.2941, -62) -> (-145.5882, -62)
  line L14 (-145.5882, -62) -> (-145.5882, -57)
  line L15 (-145.5882, -57) -> (-135.8824, -57)
  line L16 (-135.8824, -57) -> (-135.8824, -62)
  line L17 (-135.8824, -62) -> (-126.1765, -62)
  line L18 (-126.1765, -62) -> (-126.1765, -57)
  line L19 (-126.1765, -57) -> (-116.4706, -57)
  line L20 (-116.4706, -57) -> (-116.4706, -62)
  line L21 (-116.4706, -62) -> (-106.7647, -62)
  line L22 (-106.7647, -62) -> (-106.7647, -57)
  line L23 (-106.7647, -57) -> (-97.0588, -57)
  line L24 (-97.0588, -57) -> (-97.0588, -62)
  line L25 (-97.0588, -62) -> (-87.3529, -62)
  line L26 (-87.3529, -62) -> (-87.3529, -57)
  line L27 (-87.3529, -57) -> (-77.6471, -57)
  line L28 (-77.6471, -57) -> (-77.6471, -62)
  line L29 (-77.6471, -62) -> (-67.9412, -62)
  line L30 (-67.9412, -62) -> (-67.9412, -57)
  line L31 (-67.9412, -57) -> (-58.2353, -57)
  line L32 (-58.2353, -57) -> (-58.2353, -62)
  line L33 (-58.2353, -62) -> (-48.5294, -62)
  line L34 (-48.5294, -62) -> (-48.5294, -57)
  line L35 (-48.5294, -57) -> (-38.8235, -57)
  line L36 (-38.8235, -57) -> (-38.8235, -62)
  line L37 (-38.8235, -62) -> (-29.1176, -62)
  line L38 (-29.1176, -62) -> (-29.1176, -57)
  line L39 (-29.1176, -57) -> (-19.4118, -57)
  line L40 (-19.4118, -57) -> (-19.4118, -62)
  line L41 (-19.4118, -62) -> (-9.7059, -62)
  line L42 (-9.7059, -62) -> (-9.7059, -57)
  line L43 (-9.7059, -57) -> (-5, -57)
  line L44 (-5, -57) -> (-5, -53.1429)
  line L45 (-5, -53.1429) -> (0, -53.1429)
  line L46 (0, -53.1429) -> (0, -44.2857)
  line L47 (0, -44.2857) -> (-5, -44.2857)
  line L48 (-5, -44.2857) -> (-5, -35.4286)
  line L49 (-5, -35.4286) -> (0, -35.4286)
  line L50 (0, -35.4286) -> (0, -26.5714)
  line L51 (0, -26.5714) -> (-5, -26.5714)
  line L52 (-5, -26.5714) -> (-5, -17.7143)
  line L53 (-5, -17.7143) -> (0, -17.7143)
  line L54 (0, -17.7143) -> (0, -8.8571)
  line L55 (0, -8.8571) -> (-5, -8.8571)
  line L56 (-5, -8.8571) -> (-5, -5)
  line L57 (-5, -5) -> (-9.7059, -5)
  line L58 (-9.7059, -5) -> (-9.7059, 0)
  line L59 (-9.7059, 0) -> (-19.4118, 0)
  line L60 (-19.4118, 0) -> (-19.4118, -5)
  line L61 (-19.4118, -5) -> (-29.1176, -5)
  line L62 (-29.1176, -5) -> (-29.1176, 0)
  line L63 (-29.1176, 0) -> (-38.8235, 0)
  line L64 (-38.8235, 0) -> (-38.8235, -5)
  line L65 (-38.8235, -5) -> (-48.5294, -5)
  line L66 (-48.5294, -5) -> (-48.5294, 0)
  line L67 (-48.5294, 0) -> (-58.2353, 0)
  line L68 (-58.2353, 0) -> (-58.2353, -5)
  line L69 (-58.2353, -5) -> (-67.9412, -5)
  line L70 (-67.9412, -5) -> (-67.9412, 0)
  line L71 (-67.9412, 0) -> (-77.6471, 0)
  line L72 (-77.6471, 0) -> (-77.6471, -5)
  line L73 (-77.6471, -5) -> (-87.3529, -5)
  line L74 (-87.3529, -5) -> (-87.3529, 0)
  line L75 (-87.3529, 0) -> (-97.0588, 0)
  line L76 (-97.0588, 0) -> (-97.0588, -5)
  line L77 (-97.0588, -5) -> (-106.7647, -5)
  line L78 (-106.7647, -5) -> (-106.7647, 0)
  line L79 (-106.7647, 0) -> (-116.4706, 0)
  line L80 (-116.4706, 0) -> (-116.4706, -5)
  line L81 (-116.4706, -5) -> (-126.1765, -5)
  line L82 (-126.1765, -5) -> (-126.1765, 0)
  line L83 (-126.1765, 0) -> (-135.8824, 0)
  line L84 (-135.8824, 0) -> (-135.8824, -5)
  line L85 (-135.8824, -5) -> (-145.5882, -5)
  line L86 (-145.5882, -5) -> (-145.5882, 0)
  line L87 (-145.5882, 0) -> (-155.2941, 0)
  line L88 (-155.2941, 0) -> (-155.2941, -5)
  line L89 (-155.2941, -5) -> (-160, -5)
  line L90 (-160, -5) -> (-160, -8.8571)
  line L91 (-160, -8.8571) -> (-165, -8.8571)
  line L92 (-165, -31) -> (-97.625, -31) construction
  line L93 (-97.625, -31) -> (-122.625, -31) construction
  line L94 (-125.775, -34.15) -> (-119.475, -34.15)
  line L95 (-119.475, -34.15) -> (-119.475, -27.85)
  line L96 (-119.475, -27.85) -> (-125.775, -27.85)
  line L97 (-125.775, -27.85) -> (-125.775, -34.15)
  line L98 (-125.775, -34.15) -> (-119.475, -27.85) construction
  line L99 (-119.475, -34.15) -> (-125.775, -27.85) construction
  line L100 (0, -31) -> (-67.375, -31) construction
  line L101 (-67.375, -31) -> (-42.375, -31) construction
  line L102 (-39.225, -27.85) -> (-45.525, -27.85)
  line L103 (-45.525, -27.85) -> (-45.525, -34.15)
  line L104 (-45.525, -34.15) -> (-39.225, -34.15)
  line L105 (-39.225, -34.15) -> (-39.225, -27.85)
  line L106 (-39.225, -27.85) -> (-45.525, -34.15) construction
  line L107 (-45.525, -27.85) -> (-39.225, -34.15) construction
  point P0 (-122.625, -31)
  point P1 (-42.375, -31)
  dimension "d48" = 25
  dimension "d49" = 6.3
  dimension "d50" = 6.3
  dimension "d51" = 25
  dimension "d52" = 6.3
  dimension "d53" = 6.3
extrude "Extrude4" cut sketch "Sketch4" against normal up to surface (5 mm away) contours L94 L95 L96 L97 | L102 L103 L104 L105
equation "box_length = 165 mm"
equation "box_width = 62 mm"
equation "box_depth = 5 mm"
equation "d4 = box_length"
equation "d5 = box_width"
equation "d6 = box_length / 17"
equation "d7 = box_depth"
equation "d10 = box_length - box_length / 17"
equation "d12 = box_depth"
equation "d13 = box_width / 7"
equation "d17 = -box_width + box_width / 7"
equation "d18 = box_length / 17"
equation "d19 = box_depth"
equation "d22 = box_length - box_length / 17"
equation "d24 = box_depth"
equation "d25 = box_width / 7"
equation "d29 = -box_width + box_width / 7"
equation "d30 = box_depth"
equation "buzzer_diam = 30.25 mm"
equation "d36 = box_length / 2"
equation "buzzer_hole_diam = 26 mm"
equation "d38 = buzzer_hole_diam"
equation "d41 = box_length / 2"
equation "d42 = buzzer_diam"
equation "d43 = -box_depth + 2 mm"
equation "button_depth = 3.5 mm"
equation "button_width = 6.3 mm"
equation "button_hole_width = 4.5 mm"
equation "d49 = button_width"
equation "d50 = button_width"
equation "d52 = button_width"
equation "d53 = button_width"
